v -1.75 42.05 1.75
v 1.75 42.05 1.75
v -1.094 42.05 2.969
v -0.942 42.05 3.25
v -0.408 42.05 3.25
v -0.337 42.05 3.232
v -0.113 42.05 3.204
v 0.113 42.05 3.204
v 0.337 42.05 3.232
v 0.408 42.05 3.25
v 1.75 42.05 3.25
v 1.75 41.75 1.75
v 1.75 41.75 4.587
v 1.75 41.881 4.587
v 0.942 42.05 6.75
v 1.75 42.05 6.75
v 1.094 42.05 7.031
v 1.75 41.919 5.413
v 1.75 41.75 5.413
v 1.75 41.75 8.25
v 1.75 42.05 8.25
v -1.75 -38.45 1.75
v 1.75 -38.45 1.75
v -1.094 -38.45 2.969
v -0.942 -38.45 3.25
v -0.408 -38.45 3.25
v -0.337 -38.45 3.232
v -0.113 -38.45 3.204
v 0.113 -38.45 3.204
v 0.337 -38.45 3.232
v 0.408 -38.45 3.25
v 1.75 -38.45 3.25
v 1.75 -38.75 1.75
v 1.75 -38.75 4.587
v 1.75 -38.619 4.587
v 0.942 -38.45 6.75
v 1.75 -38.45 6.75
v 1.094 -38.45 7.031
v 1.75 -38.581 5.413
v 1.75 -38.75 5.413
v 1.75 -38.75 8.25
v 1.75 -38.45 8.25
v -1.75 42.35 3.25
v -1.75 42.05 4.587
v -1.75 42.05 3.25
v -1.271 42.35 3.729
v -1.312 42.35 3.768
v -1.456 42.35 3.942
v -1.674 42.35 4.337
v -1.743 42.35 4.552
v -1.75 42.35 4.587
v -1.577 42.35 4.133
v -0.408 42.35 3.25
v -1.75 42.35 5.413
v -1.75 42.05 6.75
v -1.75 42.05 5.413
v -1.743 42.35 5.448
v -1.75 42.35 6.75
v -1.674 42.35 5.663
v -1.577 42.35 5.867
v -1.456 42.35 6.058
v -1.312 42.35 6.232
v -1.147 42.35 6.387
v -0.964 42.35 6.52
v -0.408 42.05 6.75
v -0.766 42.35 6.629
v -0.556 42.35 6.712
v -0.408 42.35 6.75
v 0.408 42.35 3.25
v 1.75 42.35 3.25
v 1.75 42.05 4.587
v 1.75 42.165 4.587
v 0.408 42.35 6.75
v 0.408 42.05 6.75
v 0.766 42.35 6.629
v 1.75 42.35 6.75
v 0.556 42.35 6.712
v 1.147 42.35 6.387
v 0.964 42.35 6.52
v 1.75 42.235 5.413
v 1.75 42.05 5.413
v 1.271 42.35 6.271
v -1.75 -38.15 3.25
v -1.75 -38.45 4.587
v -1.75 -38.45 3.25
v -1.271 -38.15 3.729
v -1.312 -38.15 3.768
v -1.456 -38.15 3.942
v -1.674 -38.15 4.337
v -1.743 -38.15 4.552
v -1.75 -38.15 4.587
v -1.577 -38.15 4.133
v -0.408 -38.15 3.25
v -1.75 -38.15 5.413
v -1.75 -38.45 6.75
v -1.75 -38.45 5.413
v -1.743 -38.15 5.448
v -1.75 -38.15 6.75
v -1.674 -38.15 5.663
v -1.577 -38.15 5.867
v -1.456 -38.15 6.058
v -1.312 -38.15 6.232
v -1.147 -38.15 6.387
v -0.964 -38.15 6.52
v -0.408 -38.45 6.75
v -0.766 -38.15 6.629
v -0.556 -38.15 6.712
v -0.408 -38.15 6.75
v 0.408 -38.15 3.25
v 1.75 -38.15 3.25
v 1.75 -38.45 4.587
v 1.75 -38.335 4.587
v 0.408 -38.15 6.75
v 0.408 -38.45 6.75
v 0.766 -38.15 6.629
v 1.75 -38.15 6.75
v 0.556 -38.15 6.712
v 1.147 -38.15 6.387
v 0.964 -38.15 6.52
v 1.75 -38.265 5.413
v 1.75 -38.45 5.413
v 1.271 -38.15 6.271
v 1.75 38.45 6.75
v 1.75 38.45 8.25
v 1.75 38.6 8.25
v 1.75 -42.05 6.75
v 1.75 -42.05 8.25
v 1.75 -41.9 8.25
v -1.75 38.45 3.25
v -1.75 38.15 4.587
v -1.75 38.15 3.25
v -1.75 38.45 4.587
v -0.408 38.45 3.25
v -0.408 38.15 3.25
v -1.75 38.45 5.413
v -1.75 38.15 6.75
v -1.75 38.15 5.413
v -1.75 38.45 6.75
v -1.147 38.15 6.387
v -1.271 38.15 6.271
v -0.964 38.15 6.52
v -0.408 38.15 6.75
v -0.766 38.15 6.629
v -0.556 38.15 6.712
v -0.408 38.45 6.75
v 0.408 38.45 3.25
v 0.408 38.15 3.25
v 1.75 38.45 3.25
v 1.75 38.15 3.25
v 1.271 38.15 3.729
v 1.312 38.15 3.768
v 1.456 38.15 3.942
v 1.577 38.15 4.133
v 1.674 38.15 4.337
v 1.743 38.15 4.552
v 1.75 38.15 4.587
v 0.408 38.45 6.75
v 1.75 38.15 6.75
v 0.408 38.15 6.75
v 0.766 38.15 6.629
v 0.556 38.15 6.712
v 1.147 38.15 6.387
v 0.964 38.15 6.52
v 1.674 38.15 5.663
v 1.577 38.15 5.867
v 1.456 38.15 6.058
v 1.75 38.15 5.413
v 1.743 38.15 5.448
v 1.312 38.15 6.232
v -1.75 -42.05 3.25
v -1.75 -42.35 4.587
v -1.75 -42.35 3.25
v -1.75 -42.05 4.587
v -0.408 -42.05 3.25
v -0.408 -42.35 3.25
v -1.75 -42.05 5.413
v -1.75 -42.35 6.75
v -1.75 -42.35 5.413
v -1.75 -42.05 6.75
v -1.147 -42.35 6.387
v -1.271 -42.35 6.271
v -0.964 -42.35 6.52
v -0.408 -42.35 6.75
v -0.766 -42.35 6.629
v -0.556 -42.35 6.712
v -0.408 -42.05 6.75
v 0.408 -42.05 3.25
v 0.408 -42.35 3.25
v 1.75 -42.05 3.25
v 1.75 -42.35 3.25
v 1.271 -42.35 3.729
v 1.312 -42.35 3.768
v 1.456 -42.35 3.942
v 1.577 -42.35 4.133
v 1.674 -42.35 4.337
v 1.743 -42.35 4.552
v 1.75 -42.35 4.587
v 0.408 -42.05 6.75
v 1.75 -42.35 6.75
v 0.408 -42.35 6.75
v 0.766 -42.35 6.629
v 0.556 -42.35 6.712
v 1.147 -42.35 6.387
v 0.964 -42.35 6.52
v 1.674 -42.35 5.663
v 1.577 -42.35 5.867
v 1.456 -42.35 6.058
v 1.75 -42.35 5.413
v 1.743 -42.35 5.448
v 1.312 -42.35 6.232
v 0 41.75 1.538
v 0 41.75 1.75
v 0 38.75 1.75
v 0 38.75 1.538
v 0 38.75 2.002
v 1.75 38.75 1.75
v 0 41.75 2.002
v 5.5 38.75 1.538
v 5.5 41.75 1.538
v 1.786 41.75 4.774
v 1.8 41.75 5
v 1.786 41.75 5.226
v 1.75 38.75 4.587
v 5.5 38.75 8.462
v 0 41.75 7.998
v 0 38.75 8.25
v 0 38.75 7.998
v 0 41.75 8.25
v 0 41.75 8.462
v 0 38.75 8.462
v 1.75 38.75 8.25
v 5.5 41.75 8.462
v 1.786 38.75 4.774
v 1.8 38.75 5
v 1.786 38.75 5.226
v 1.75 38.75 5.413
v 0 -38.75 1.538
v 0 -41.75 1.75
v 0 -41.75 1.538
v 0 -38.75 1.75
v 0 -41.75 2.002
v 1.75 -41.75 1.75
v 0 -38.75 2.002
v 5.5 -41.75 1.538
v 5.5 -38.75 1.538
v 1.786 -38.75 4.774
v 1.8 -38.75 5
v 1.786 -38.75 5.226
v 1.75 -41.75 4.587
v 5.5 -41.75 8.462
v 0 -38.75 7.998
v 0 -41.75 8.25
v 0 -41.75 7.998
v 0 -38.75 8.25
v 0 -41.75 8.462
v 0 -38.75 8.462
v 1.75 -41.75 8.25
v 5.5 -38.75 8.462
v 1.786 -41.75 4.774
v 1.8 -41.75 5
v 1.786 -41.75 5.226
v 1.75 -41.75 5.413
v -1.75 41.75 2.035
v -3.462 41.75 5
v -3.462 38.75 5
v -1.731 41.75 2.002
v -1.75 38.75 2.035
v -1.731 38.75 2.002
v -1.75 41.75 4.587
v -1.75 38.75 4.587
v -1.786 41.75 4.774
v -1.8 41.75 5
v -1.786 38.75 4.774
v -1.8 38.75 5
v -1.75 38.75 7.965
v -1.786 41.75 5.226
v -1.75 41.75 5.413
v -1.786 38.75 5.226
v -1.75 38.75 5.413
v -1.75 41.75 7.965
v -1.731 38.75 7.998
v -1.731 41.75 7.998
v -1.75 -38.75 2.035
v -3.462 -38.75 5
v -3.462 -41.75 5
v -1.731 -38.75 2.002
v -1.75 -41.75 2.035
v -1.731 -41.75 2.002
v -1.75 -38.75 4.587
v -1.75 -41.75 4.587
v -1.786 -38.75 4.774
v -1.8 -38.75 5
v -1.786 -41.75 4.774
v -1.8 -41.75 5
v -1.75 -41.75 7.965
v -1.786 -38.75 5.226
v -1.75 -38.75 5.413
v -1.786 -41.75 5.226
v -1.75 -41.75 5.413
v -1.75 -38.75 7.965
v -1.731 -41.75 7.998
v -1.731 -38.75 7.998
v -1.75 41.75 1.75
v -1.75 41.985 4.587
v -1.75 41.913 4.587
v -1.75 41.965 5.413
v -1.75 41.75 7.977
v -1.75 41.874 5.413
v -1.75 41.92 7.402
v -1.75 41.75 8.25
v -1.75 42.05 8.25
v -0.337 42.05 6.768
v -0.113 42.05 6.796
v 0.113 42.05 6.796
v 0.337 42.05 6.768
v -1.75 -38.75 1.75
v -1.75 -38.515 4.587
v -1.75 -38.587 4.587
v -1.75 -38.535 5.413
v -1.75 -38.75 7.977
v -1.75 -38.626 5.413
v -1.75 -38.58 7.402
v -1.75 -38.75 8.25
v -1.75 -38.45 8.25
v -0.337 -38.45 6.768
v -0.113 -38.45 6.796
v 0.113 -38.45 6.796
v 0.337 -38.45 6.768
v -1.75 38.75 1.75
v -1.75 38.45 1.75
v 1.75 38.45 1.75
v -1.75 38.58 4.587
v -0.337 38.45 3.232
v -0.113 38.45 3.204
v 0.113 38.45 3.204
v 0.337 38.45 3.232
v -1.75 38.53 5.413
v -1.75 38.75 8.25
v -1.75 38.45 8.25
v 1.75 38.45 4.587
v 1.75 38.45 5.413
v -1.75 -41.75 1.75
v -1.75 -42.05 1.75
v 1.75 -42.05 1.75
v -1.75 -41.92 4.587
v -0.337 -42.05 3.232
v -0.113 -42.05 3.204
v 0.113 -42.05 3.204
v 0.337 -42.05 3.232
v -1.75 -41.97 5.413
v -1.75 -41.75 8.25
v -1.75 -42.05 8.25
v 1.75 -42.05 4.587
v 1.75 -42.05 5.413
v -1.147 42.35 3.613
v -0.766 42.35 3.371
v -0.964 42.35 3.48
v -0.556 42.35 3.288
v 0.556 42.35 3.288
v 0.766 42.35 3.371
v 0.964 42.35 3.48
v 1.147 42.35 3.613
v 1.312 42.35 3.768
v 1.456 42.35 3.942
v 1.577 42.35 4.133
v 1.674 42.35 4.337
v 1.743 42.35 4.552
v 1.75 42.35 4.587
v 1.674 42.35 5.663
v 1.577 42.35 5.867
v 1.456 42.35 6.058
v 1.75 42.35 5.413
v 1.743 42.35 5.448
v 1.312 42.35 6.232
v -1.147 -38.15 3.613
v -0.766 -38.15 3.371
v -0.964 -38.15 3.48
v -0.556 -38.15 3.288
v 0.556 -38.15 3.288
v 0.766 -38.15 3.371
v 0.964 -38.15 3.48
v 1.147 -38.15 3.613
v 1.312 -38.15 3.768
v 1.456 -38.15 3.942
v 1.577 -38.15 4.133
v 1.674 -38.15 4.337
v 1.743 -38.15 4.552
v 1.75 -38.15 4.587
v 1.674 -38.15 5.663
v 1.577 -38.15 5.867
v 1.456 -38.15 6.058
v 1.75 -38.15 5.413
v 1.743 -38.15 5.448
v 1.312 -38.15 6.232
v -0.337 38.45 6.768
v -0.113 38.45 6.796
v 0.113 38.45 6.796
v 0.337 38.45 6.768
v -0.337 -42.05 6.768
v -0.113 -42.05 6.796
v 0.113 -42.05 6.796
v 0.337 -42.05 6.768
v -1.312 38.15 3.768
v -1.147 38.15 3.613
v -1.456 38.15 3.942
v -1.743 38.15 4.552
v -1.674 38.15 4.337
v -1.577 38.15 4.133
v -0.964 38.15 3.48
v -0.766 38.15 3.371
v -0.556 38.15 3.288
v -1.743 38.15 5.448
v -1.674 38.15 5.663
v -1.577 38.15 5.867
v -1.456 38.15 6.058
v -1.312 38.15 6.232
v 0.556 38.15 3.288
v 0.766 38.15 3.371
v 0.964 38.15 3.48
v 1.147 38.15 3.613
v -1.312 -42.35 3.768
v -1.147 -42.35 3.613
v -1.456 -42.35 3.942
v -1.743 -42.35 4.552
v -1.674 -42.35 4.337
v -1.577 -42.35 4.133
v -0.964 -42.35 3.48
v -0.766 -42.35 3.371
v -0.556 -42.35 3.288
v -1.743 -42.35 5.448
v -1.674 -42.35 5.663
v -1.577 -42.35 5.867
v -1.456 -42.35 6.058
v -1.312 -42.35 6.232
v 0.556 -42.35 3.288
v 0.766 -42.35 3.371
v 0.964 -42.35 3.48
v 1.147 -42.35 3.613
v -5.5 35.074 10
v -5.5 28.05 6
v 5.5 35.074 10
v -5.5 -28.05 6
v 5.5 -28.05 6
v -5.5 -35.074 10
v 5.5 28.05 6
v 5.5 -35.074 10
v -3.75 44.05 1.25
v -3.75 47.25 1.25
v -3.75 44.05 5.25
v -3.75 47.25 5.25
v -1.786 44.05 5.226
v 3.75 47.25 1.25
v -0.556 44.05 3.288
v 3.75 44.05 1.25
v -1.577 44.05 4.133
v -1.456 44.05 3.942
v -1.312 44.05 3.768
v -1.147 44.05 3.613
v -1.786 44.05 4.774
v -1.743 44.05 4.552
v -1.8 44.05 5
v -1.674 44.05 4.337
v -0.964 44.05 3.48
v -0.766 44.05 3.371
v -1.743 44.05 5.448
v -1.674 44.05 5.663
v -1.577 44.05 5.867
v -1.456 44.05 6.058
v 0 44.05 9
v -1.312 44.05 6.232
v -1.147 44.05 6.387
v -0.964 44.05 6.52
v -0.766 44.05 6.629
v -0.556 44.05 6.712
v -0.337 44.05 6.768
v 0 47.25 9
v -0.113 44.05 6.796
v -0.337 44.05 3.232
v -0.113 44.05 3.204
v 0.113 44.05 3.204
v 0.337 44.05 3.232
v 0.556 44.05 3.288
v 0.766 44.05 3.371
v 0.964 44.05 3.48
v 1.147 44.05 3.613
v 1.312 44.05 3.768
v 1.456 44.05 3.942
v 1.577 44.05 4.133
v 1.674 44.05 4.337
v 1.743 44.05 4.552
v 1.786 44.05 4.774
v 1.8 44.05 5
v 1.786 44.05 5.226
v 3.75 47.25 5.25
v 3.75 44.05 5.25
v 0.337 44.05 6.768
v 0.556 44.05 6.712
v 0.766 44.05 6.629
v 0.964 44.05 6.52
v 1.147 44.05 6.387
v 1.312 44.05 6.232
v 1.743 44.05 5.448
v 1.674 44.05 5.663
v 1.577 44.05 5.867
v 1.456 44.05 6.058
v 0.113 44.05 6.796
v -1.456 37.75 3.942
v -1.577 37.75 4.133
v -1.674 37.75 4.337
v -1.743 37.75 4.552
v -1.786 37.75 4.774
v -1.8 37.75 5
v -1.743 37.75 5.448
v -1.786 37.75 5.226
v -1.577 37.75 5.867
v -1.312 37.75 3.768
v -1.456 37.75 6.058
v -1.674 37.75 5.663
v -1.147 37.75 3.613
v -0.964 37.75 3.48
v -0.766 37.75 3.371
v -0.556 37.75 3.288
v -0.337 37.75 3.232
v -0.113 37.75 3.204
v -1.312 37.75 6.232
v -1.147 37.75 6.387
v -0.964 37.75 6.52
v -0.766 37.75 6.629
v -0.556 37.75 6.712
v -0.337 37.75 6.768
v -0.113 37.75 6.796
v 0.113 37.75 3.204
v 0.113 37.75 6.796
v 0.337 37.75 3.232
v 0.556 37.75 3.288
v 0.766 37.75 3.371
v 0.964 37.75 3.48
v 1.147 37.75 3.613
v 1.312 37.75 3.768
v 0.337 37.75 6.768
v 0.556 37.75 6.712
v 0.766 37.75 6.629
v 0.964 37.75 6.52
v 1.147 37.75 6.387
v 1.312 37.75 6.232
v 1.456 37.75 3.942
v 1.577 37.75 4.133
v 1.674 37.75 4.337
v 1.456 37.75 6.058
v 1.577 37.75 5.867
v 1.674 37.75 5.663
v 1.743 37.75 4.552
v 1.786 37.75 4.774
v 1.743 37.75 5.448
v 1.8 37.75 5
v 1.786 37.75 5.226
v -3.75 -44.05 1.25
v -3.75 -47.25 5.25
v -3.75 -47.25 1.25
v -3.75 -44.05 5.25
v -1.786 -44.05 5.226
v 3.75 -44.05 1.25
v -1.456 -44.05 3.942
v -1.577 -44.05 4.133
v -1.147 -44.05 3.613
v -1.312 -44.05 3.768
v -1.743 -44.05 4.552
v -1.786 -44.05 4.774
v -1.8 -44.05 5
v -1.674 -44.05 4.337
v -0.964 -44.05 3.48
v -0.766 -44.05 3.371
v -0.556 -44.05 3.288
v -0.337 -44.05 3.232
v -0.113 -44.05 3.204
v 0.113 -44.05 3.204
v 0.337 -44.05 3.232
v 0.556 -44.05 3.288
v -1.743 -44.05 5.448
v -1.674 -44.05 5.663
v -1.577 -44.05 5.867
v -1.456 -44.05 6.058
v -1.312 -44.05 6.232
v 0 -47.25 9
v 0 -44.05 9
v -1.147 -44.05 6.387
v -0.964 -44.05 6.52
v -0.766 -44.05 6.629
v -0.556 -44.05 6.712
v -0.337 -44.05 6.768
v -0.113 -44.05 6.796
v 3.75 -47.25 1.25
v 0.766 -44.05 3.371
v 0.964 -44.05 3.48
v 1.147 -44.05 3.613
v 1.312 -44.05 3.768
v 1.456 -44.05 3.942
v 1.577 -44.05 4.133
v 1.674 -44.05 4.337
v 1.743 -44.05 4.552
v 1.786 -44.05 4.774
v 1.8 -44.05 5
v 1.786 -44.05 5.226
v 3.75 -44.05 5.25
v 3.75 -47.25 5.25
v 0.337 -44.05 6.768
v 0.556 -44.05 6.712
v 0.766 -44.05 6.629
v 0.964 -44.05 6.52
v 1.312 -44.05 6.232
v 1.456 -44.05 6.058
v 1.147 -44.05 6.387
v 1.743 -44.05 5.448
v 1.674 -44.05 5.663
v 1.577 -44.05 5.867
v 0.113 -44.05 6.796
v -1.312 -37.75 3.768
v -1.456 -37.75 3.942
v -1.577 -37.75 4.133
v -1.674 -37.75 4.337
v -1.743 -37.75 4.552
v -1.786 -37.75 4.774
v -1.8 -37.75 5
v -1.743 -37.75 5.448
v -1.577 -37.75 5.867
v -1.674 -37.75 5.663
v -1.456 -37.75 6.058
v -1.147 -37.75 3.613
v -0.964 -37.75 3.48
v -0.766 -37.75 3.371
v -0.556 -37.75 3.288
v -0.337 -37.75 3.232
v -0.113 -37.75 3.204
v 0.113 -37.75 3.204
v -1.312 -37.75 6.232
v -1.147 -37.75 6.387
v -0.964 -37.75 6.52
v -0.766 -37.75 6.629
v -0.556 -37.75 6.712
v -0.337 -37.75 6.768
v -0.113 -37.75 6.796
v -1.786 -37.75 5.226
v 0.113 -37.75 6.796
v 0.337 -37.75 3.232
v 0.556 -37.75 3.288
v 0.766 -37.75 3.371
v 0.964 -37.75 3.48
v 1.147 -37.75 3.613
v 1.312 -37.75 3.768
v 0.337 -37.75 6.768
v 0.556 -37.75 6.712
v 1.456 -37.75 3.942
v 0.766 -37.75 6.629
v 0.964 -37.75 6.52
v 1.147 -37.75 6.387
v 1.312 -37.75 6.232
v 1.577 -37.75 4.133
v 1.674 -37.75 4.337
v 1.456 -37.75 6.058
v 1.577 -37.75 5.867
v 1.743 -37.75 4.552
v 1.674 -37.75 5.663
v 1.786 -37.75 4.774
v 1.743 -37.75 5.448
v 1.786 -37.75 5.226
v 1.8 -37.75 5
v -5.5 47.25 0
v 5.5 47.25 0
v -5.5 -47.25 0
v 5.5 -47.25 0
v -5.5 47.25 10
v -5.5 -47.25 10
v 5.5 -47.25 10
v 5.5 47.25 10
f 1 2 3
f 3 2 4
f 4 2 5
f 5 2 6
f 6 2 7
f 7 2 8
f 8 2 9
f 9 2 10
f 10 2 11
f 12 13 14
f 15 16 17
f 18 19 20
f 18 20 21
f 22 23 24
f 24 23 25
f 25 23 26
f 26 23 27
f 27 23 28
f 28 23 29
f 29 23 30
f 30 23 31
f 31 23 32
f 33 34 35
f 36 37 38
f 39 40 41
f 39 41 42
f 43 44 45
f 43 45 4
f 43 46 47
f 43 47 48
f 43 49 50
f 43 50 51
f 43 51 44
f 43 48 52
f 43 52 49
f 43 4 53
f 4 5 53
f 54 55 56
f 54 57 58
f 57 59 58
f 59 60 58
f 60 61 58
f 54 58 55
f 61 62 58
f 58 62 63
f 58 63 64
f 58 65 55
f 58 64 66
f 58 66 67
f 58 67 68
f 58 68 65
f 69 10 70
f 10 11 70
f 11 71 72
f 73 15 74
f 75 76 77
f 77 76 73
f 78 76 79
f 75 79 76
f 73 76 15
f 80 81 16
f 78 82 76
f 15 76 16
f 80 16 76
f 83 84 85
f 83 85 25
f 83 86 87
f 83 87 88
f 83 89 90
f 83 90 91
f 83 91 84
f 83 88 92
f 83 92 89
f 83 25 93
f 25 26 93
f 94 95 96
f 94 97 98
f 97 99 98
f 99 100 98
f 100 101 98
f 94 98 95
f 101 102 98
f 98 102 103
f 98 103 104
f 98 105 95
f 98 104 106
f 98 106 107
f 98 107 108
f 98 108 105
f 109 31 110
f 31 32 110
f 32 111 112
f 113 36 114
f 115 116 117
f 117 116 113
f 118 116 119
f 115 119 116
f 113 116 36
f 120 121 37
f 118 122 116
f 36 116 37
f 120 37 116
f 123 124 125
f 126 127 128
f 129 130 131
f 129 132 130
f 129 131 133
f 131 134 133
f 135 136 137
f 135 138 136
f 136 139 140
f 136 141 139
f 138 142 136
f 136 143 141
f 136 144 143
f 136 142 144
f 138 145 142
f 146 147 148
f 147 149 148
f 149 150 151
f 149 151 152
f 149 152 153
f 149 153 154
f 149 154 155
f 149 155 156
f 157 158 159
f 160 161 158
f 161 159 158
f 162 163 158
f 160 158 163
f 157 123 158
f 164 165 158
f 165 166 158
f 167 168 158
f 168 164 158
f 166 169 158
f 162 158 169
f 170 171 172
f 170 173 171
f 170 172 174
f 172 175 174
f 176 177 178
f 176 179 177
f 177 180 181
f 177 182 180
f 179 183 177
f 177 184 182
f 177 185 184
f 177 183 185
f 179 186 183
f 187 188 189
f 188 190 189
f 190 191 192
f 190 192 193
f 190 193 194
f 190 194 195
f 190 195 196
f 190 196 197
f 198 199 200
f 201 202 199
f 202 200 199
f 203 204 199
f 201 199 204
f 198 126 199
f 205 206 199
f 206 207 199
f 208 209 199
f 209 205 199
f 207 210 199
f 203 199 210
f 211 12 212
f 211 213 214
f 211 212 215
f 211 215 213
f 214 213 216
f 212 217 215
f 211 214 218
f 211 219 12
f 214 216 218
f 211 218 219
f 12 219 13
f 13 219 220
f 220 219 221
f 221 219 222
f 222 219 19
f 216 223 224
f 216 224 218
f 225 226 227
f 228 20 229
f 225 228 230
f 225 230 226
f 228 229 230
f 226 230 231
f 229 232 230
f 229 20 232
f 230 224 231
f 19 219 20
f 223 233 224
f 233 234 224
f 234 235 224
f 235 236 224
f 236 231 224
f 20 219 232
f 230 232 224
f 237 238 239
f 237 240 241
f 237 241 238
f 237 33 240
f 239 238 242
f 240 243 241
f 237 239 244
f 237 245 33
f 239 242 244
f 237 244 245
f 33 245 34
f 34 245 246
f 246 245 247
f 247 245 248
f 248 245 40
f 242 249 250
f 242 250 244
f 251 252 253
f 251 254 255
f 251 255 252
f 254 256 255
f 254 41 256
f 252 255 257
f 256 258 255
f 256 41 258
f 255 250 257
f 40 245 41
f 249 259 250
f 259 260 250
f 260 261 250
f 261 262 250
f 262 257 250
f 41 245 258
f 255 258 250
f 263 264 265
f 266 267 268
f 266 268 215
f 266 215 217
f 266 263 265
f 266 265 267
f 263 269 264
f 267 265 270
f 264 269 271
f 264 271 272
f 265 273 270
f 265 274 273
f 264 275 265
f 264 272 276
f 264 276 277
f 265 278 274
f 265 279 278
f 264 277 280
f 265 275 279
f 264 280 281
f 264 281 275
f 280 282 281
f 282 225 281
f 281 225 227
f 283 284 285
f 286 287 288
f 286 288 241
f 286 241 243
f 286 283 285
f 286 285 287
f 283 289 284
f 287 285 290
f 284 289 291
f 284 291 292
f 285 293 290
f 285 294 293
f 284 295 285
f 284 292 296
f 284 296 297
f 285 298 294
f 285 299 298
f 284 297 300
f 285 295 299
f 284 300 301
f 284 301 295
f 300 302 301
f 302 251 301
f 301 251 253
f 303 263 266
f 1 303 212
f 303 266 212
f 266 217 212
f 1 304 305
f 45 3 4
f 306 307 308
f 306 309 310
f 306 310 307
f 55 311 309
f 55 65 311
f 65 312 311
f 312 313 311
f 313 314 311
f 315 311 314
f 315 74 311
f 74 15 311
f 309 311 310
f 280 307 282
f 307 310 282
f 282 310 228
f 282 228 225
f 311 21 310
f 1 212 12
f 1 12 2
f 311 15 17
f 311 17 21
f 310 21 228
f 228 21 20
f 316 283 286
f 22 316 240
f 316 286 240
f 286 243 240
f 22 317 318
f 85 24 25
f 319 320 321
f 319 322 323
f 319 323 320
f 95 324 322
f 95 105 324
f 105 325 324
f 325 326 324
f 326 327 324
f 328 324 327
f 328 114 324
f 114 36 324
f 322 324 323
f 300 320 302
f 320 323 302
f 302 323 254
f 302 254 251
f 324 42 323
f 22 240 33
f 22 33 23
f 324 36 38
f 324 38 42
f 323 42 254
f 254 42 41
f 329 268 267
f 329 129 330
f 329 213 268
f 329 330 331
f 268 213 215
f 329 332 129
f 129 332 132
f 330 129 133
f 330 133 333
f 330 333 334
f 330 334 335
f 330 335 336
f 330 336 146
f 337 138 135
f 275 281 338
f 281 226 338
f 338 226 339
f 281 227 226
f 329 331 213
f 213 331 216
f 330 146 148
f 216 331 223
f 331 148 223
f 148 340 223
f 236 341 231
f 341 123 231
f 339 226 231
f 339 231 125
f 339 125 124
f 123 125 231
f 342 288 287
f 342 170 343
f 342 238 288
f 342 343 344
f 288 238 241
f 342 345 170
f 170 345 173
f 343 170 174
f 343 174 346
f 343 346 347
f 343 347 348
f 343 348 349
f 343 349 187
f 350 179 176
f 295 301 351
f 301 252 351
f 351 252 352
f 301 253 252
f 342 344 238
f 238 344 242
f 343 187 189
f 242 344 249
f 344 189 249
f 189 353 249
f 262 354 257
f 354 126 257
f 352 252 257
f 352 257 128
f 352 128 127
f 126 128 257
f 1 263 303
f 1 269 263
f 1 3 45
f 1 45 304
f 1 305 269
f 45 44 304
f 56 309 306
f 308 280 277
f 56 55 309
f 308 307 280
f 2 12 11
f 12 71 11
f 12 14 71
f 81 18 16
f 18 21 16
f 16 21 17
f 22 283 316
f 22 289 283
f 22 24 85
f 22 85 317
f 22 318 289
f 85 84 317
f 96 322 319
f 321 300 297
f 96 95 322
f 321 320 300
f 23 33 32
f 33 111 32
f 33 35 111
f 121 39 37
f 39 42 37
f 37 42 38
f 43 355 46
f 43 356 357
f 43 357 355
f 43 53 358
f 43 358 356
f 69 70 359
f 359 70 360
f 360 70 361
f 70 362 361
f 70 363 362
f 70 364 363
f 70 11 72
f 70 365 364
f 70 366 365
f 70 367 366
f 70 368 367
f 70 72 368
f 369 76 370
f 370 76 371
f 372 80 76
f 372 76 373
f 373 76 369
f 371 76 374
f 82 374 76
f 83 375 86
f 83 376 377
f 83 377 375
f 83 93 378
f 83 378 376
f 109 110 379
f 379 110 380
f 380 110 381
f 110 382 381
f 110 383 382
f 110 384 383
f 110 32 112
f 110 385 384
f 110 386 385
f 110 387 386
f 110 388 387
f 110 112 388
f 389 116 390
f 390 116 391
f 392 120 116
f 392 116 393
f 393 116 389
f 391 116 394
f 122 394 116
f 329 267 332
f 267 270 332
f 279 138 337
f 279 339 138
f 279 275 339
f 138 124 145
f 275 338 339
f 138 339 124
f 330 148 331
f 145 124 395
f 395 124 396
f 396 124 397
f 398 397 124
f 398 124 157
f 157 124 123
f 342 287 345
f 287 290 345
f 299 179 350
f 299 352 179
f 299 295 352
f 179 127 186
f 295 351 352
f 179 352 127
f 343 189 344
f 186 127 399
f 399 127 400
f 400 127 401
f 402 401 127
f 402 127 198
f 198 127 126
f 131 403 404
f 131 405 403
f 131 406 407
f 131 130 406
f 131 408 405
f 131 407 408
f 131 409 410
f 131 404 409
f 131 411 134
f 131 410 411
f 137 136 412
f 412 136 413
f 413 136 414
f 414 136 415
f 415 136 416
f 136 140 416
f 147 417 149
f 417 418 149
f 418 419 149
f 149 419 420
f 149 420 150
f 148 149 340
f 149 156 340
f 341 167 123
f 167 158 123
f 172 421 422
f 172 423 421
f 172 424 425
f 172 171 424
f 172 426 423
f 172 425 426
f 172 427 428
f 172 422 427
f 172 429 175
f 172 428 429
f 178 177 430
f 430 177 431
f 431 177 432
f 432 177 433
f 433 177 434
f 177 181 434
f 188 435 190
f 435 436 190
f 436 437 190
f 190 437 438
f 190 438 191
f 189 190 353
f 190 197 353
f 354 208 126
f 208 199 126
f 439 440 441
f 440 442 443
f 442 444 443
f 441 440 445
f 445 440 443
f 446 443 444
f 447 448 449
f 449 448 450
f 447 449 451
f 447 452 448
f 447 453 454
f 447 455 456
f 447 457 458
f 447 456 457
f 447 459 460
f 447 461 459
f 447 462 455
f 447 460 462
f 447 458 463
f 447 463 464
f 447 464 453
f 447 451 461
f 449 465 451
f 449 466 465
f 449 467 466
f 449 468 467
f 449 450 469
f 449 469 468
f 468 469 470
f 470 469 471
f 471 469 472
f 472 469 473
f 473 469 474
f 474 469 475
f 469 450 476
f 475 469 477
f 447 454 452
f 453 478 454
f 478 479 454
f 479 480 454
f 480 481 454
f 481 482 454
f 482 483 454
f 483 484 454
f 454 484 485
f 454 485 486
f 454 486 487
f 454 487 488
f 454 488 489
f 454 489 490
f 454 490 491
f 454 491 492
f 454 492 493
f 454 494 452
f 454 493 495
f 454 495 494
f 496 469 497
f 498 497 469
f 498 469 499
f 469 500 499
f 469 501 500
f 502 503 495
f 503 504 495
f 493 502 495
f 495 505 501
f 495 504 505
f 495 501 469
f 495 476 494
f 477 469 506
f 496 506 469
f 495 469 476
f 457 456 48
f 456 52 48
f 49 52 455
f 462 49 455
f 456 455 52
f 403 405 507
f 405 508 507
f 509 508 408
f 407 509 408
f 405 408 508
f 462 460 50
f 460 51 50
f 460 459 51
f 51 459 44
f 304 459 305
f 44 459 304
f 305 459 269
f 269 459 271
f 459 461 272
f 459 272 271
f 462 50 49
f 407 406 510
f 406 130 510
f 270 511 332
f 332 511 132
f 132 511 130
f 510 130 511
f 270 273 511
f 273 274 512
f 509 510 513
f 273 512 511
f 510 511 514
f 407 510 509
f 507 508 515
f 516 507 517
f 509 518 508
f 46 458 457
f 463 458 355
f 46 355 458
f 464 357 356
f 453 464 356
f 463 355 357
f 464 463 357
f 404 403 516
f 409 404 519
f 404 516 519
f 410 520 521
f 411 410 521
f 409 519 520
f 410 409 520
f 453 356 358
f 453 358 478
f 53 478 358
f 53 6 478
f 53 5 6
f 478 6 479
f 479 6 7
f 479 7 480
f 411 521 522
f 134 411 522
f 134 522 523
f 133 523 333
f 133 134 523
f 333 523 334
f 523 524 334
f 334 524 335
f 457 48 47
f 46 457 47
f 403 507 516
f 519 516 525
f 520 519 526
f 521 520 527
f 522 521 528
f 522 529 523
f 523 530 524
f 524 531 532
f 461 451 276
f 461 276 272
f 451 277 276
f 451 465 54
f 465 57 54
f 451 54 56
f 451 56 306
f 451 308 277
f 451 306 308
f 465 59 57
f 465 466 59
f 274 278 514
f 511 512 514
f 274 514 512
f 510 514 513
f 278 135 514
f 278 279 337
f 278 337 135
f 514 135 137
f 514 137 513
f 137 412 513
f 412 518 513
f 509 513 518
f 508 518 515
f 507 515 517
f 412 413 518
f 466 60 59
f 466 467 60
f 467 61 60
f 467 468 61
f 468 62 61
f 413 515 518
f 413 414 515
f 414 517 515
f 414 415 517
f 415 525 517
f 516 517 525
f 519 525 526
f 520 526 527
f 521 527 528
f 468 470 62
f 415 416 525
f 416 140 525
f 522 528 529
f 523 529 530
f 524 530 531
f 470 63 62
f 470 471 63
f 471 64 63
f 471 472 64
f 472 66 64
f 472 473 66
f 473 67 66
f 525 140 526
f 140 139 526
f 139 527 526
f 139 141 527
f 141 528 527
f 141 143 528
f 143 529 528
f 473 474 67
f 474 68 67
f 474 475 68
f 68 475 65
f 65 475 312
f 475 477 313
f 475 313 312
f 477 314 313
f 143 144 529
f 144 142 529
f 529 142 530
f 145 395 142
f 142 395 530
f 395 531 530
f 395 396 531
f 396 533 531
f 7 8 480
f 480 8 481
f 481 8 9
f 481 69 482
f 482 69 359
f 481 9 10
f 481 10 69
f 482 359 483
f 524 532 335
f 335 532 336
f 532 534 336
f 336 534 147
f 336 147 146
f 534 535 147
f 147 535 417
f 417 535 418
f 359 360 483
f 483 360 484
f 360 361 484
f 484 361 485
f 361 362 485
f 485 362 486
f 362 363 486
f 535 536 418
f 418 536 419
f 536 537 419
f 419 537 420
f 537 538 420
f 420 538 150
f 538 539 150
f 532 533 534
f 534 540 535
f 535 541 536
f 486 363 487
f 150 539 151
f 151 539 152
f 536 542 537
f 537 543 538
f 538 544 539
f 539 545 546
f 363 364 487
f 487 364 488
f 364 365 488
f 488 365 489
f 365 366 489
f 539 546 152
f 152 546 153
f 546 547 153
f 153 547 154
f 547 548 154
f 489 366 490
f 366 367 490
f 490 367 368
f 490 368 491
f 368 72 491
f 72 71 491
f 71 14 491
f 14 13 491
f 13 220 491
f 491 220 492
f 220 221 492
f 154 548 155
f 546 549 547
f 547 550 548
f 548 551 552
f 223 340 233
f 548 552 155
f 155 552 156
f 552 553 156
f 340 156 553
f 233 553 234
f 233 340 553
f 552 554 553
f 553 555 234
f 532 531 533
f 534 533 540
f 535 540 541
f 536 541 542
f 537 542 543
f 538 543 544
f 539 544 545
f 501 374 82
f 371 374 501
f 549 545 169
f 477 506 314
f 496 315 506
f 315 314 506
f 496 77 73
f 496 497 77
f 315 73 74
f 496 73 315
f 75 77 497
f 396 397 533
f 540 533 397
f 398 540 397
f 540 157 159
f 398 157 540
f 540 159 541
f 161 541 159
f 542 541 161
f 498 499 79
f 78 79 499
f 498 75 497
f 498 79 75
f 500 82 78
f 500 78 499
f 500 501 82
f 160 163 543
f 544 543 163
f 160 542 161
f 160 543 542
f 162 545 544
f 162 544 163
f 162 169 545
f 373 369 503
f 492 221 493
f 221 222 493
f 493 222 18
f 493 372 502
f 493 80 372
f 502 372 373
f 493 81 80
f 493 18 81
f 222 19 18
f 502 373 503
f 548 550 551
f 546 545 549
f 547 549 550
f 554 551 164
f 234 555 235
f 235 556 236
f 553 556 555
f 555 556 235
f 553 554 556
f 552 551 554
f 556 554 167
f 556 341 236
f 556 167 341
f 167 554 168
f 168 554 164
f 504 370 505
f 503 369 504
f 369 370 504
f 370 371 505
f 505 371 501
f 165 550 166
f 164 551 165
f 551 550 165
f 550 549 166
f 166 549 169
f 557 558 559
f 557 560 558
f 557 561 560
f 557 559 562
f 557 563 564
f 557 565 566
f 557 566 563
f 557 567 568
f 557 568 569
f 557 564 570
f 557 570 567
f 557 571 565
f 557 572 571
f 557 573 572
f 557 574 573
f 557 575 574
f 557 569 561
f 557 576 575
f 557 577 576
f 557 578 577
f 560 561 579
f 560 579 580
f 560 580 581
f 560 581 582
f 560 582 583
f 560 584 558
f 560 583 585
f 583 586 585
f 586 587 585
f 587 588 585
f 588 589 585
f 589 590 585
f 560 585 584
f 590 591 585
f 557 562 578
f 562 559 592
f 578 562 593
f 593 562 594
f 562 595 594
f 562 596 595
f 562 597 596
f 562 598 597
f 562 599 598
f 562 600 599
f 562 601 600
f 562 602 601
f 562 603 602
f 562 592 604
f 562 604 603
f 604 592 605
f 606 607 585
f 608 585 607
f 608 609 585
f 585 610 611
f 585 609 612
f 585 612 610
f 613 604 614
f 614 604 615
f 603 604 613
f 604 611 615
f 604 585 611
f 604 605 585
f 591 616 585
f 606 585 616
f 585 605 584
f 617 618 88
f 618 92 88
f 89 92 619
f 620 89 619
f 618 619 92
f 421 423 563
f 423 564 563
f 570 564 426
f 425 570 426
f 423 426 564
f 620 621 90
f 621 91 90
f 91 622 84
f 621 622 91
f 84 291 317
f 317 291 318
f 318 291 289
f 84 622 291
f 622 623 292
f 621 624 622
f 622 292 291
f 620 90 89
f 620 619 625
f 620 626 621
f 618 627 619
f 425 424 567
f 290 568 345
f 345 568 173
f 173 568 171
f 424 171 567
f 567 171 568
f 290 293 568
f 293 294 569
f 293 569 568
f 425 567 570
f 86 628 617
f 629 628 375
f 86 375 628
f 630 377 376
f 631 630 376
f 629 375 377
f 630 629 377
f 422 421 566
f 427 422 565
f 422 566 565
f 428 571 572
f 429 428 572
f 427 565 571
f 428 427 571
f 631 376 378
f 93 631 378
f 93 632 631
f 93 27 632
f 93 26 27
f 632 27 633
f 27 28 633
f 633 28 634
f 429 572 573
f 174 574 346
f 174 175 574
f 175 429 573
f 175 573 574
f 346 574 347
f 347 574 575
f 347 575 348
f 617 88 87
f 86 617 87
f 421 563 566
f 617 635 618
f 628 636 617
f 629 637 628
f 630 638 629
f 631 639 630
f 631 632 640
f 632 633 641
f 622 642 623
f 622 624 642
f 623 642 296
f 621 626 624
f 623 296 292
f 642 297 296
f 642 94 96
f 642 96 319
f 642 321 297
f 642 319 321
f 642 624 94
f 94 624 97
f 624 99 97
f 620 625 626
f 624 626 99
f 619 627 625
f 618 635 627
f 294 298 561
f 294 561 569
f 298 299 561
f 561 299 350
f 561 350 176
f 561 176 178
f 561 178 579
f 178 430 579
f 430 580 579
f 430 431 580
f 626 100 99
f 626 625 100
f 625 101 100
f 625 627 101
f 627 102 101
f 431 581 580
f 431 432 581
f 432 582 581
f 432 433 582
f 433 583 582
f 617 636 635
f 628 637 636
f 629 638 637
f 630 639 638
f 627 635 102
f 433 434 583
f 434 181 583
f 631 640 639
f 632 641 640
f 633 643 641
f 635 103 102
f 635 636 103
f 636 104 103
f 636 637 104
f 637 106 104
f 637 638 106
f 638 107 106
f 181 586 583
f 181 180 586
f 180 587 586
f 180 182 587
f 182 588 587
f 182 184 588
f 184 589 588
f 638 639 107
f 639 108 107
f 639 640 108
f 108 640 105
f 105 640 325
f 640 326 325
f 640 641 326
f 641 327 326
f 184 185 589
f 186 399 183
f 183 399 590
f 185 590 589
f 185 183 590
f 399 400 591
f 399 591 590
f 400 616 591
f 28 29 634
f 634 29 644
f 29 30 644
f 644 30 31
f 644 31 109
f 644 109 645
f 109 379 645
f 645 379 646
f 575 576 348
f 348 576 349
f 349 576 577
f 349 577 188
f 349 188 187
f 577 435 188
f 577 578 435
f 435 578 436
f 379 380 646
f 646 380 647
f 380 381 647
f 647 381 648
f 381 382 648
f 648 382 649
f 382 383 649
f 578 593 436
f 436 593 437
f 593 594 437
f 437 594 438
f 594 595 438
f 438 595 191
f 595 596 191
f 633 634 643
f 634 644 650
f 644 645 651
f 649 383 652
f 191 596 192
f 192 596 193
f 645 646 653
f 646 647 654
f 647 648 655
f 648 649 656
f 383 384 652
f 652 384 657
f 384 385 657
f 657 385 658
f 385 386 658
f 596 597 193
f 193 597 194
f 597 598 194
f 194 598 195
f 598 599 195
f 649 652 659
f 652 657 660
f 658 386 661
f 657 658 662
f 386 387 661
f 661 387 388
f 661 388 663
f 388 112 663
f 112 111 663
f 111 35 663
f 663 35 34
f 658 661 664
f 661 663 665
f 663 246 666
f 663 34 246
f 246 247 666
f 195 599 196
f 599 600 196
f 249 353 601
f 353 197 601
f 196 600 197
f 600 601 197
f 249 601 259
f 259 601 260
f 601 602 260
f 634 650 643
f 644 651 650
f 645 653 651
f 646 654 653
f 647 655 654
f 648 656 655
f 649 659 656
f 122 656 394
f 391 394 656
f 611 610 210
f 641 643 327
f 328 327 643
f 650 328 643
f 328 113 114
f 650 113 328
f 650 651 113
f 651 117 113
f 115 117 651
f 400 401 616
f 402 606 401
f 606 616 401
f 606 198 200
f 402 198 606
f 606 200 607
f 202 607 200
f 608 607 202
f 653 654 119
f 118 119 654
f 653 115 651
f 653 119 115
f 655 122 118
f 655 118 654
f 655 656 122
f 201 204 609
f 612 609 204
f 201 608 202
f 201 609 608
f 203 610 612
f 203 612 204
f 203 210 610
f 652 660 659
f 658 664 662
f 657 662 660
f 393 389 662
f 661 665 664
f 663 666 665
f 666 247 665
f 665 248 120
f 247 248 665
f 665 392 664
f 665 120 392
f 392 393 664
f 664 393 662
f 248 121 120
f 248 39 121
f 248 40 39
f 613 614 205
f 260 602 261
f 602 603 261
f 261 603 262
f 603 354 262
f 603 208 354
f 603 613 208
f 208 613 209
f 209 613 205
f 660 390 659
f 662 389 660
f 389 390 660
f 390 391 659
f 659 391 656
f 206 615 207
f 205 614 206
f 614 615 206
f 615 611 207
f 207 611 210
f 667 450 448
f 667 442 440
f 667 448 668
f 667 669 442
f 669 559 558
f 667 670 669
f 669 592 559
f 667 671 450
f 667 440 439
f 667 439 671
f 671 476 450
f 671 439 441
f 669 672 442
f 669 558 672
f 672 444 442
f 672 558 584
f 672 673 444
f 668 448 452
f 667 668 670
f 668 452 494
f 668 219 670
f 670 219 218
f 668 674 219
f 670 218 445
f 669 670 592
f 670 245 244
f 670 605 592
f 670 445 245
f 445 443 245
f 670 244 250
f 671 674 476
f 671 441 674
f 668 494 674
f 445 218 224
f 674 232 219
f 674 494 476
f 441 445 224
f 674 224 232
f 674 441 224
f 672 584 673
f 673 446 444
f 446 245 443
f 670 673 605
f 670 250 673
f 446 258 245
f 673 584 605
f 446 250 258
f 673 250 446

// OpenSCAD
$fn = 50;

difference() {
	union() {
		translate(v = [0, 47.25, 0]) {
			rotate(a = [90, 0, 0]) {
				difference() {
					union() {
						translate(v = [-5.5, 0, 0]) {
							cube(size = [11.0, 10.0, 94.5]);
						}
					}
					union() {
						translate(v = [0, 5.0, 5.5]) {
							rotate(a = [0, 0, 0]) {
								difference() {
									union() {
										translate(v = [-1.75, -3.25, -0.3]) {
											cube(size = [3.5, 6.5, 0.3]);
										}
										translate(v = [-1.75, -1.75, -0.6]) {
											cube(size = [3.5, 3.5, 0.3]);
										}
										translate(v = [-1.75, -3.25, 3]) {
											cube(size = [3.5, 6.5, 0.3]);
										}
										translate(v = [-1.75, -1.75, 3.3]) {
											cube(size = [3.5, 3.5, 0.3]);
										}
										translate(v = [0.0, -3.4619999999999997, 0]) {
											cube(size = [20, 6.9239999999999995, 3]);
										}
										linear_extrude(height = 3) {
											polygon(points = [[3.4619999999999997, 0.0], [1.7310000000000003, 2.9981799479017264], [-1.7309999999999992, 2.9981799479017264], [-3.4619999999999997, 4.2397272186481365e-16], [-1.7310000000000014, -2.998179947901726], [1.7309999999999977, -2.9981799479017277]]);
										}
										translate(v = [-1.75, -3.25, -0.3]) {
											cube(size = [3.5, 6.5, 0.3]);
										}
										translate(v = [-1.75, -1.75, -0.6]) {
											cube(size = [3.5, 3.5, 0.3]);
										}
										translate(v = [-1.75, -3.25, 3]) {
											cube(size = [3.5, 6.5, 0.3]);
										}
										translate(v = [-1.75, -1.75, 3.3]) {
											cube(size = [3.5, 3.5, 0.3]);
										}
										translate(v = [-1.75, -3.25, -0.3]) {
											cube(size = [3.5, 6.5, 0.3]);
										}
										translate(v = [-1.75, -1.75, -0.6]) {
											cube(size = [3.5, 3.5, 0.3]);
										}
										translate(v = [-1.75, -3.25, 3]) {
											cube(size = [3.5, 6.5, 0.3]);
										}
										translate(v = [-1.75, -1.75, 3.3]) {
											cube(size = [3.5, 3.5, 0.3]);
										}
									}
									union();
								}
							}
						}
						translate(v = [0, 5.0, 86.0]) {
							rotate(a = [0, 0, 0]) {
								difference() {
									union() {
										translate(v = [-1.75, -3.25, -0.3]) {
											cube(size = [3.5, 6.5, 0.3]);
										}
										translate(v = [-1.75, -1.75, -0.6]) {
											cube(size = [3.5, 3.5, 0.3]);
										}
										translate(v = [-1.75, -3.25, 3]) {
											cube(size = [3.5, 6.5, 0.3]);
										}
										translate(v = [-1.75, -1.75, 3.3]) {
											cube(size = [3.5, 3.5, 0.3]);
										}
										translate(v = [0.0, -3.4619999999999997, 0]) {
											cube(size = [20, 6.9239999999999995, 3]);
										}
										linear_extrude(height = 3) {
											polygon(points = [[3.4619999999999997, 0.0], [1.7310000000000003, 2.9981799479017264], [-1.7309999999999992, 2.9981799479017264], [-3.4619999999999997, 4.2397272186481365e-16], [-1.7310000000000014, -2.998179947901726], [1.7309999999999977, -2.9981799479017277]]);
										}
										translate(v = [-1.75, -3.25, -0.3]) {
											cube(size = [3.5, 6.5, 0.3]);
										}
										translate(v = [-1.75, -1.75, -0.6]) {
											cube(size = [3.5, 3.5, 0.3]);
										}
										translate(v = [-1.75, -3.25, 3]) {
											cube(size = [3.5, 6.5, 0.3]);
										}
										translate(v = [-1.75, -1.75, 3.3]) {
											cube(size = [3.5, 3.5, 0.3]);
										}
										translate(v = [-1.75, -3.25, -0.3]) {
											cube(size = [3.5, 6.5, 0.3]);
										}
										translate(v = [-1.75, -1.75, -0.6]) {
											cube(size = [3.5, 3.5, 0.3]);
										}
										translate(v = [-1.75, -3.25, 3]) {
											cube(size = [3.5, 6.5, 0.3]);
										}
										translate(v = [-1.75, -1.75, 3.3]) {
											cube(size = [3.5, 3.5, 0.3]);
										}
									}
									union();
								}
							}
						}
						translate(v = [-5.6, 0, 0]) {
							rotate(a = [90, 0, 90]) {
								linear_extrude(height = 11.2) {
									polygon(points = [[10.1, 12.0], [10.1, 82.5], [6.0, 75.3], [6.0, 19.2]]);
								}
							}
						}
						translate(v = [0, 0, -0.1]) {
							linear_extrude(height = 3.3000000000000003) {
								polygon(points = [[-3.75, 1.25], [3.75, 1.25], [3.75, 5.25], [0, 9.0], [-3.75, 5.25]]);
							}
						}
						translate(v = [0, 5.0, -0.1]) {
							cylinder(h = 9.6, r = 1.8);
						}
						translate(v = [0, 0, 91.3]) {
							linear_extrude(height = 3.3000000000000003) {
								polygon(points = [[-3.75, 1.25], [3.75, 1.25], [3.75, 5.25], [0, 9.0], [-3.75, 5.25]]);
							}
						}
						translate(v = [0, 5.0, 85.0]) {
							cylinder(h = 9.6, r = 1.8);
						}
					}
				}
			}
		}
	}
	union();
}
